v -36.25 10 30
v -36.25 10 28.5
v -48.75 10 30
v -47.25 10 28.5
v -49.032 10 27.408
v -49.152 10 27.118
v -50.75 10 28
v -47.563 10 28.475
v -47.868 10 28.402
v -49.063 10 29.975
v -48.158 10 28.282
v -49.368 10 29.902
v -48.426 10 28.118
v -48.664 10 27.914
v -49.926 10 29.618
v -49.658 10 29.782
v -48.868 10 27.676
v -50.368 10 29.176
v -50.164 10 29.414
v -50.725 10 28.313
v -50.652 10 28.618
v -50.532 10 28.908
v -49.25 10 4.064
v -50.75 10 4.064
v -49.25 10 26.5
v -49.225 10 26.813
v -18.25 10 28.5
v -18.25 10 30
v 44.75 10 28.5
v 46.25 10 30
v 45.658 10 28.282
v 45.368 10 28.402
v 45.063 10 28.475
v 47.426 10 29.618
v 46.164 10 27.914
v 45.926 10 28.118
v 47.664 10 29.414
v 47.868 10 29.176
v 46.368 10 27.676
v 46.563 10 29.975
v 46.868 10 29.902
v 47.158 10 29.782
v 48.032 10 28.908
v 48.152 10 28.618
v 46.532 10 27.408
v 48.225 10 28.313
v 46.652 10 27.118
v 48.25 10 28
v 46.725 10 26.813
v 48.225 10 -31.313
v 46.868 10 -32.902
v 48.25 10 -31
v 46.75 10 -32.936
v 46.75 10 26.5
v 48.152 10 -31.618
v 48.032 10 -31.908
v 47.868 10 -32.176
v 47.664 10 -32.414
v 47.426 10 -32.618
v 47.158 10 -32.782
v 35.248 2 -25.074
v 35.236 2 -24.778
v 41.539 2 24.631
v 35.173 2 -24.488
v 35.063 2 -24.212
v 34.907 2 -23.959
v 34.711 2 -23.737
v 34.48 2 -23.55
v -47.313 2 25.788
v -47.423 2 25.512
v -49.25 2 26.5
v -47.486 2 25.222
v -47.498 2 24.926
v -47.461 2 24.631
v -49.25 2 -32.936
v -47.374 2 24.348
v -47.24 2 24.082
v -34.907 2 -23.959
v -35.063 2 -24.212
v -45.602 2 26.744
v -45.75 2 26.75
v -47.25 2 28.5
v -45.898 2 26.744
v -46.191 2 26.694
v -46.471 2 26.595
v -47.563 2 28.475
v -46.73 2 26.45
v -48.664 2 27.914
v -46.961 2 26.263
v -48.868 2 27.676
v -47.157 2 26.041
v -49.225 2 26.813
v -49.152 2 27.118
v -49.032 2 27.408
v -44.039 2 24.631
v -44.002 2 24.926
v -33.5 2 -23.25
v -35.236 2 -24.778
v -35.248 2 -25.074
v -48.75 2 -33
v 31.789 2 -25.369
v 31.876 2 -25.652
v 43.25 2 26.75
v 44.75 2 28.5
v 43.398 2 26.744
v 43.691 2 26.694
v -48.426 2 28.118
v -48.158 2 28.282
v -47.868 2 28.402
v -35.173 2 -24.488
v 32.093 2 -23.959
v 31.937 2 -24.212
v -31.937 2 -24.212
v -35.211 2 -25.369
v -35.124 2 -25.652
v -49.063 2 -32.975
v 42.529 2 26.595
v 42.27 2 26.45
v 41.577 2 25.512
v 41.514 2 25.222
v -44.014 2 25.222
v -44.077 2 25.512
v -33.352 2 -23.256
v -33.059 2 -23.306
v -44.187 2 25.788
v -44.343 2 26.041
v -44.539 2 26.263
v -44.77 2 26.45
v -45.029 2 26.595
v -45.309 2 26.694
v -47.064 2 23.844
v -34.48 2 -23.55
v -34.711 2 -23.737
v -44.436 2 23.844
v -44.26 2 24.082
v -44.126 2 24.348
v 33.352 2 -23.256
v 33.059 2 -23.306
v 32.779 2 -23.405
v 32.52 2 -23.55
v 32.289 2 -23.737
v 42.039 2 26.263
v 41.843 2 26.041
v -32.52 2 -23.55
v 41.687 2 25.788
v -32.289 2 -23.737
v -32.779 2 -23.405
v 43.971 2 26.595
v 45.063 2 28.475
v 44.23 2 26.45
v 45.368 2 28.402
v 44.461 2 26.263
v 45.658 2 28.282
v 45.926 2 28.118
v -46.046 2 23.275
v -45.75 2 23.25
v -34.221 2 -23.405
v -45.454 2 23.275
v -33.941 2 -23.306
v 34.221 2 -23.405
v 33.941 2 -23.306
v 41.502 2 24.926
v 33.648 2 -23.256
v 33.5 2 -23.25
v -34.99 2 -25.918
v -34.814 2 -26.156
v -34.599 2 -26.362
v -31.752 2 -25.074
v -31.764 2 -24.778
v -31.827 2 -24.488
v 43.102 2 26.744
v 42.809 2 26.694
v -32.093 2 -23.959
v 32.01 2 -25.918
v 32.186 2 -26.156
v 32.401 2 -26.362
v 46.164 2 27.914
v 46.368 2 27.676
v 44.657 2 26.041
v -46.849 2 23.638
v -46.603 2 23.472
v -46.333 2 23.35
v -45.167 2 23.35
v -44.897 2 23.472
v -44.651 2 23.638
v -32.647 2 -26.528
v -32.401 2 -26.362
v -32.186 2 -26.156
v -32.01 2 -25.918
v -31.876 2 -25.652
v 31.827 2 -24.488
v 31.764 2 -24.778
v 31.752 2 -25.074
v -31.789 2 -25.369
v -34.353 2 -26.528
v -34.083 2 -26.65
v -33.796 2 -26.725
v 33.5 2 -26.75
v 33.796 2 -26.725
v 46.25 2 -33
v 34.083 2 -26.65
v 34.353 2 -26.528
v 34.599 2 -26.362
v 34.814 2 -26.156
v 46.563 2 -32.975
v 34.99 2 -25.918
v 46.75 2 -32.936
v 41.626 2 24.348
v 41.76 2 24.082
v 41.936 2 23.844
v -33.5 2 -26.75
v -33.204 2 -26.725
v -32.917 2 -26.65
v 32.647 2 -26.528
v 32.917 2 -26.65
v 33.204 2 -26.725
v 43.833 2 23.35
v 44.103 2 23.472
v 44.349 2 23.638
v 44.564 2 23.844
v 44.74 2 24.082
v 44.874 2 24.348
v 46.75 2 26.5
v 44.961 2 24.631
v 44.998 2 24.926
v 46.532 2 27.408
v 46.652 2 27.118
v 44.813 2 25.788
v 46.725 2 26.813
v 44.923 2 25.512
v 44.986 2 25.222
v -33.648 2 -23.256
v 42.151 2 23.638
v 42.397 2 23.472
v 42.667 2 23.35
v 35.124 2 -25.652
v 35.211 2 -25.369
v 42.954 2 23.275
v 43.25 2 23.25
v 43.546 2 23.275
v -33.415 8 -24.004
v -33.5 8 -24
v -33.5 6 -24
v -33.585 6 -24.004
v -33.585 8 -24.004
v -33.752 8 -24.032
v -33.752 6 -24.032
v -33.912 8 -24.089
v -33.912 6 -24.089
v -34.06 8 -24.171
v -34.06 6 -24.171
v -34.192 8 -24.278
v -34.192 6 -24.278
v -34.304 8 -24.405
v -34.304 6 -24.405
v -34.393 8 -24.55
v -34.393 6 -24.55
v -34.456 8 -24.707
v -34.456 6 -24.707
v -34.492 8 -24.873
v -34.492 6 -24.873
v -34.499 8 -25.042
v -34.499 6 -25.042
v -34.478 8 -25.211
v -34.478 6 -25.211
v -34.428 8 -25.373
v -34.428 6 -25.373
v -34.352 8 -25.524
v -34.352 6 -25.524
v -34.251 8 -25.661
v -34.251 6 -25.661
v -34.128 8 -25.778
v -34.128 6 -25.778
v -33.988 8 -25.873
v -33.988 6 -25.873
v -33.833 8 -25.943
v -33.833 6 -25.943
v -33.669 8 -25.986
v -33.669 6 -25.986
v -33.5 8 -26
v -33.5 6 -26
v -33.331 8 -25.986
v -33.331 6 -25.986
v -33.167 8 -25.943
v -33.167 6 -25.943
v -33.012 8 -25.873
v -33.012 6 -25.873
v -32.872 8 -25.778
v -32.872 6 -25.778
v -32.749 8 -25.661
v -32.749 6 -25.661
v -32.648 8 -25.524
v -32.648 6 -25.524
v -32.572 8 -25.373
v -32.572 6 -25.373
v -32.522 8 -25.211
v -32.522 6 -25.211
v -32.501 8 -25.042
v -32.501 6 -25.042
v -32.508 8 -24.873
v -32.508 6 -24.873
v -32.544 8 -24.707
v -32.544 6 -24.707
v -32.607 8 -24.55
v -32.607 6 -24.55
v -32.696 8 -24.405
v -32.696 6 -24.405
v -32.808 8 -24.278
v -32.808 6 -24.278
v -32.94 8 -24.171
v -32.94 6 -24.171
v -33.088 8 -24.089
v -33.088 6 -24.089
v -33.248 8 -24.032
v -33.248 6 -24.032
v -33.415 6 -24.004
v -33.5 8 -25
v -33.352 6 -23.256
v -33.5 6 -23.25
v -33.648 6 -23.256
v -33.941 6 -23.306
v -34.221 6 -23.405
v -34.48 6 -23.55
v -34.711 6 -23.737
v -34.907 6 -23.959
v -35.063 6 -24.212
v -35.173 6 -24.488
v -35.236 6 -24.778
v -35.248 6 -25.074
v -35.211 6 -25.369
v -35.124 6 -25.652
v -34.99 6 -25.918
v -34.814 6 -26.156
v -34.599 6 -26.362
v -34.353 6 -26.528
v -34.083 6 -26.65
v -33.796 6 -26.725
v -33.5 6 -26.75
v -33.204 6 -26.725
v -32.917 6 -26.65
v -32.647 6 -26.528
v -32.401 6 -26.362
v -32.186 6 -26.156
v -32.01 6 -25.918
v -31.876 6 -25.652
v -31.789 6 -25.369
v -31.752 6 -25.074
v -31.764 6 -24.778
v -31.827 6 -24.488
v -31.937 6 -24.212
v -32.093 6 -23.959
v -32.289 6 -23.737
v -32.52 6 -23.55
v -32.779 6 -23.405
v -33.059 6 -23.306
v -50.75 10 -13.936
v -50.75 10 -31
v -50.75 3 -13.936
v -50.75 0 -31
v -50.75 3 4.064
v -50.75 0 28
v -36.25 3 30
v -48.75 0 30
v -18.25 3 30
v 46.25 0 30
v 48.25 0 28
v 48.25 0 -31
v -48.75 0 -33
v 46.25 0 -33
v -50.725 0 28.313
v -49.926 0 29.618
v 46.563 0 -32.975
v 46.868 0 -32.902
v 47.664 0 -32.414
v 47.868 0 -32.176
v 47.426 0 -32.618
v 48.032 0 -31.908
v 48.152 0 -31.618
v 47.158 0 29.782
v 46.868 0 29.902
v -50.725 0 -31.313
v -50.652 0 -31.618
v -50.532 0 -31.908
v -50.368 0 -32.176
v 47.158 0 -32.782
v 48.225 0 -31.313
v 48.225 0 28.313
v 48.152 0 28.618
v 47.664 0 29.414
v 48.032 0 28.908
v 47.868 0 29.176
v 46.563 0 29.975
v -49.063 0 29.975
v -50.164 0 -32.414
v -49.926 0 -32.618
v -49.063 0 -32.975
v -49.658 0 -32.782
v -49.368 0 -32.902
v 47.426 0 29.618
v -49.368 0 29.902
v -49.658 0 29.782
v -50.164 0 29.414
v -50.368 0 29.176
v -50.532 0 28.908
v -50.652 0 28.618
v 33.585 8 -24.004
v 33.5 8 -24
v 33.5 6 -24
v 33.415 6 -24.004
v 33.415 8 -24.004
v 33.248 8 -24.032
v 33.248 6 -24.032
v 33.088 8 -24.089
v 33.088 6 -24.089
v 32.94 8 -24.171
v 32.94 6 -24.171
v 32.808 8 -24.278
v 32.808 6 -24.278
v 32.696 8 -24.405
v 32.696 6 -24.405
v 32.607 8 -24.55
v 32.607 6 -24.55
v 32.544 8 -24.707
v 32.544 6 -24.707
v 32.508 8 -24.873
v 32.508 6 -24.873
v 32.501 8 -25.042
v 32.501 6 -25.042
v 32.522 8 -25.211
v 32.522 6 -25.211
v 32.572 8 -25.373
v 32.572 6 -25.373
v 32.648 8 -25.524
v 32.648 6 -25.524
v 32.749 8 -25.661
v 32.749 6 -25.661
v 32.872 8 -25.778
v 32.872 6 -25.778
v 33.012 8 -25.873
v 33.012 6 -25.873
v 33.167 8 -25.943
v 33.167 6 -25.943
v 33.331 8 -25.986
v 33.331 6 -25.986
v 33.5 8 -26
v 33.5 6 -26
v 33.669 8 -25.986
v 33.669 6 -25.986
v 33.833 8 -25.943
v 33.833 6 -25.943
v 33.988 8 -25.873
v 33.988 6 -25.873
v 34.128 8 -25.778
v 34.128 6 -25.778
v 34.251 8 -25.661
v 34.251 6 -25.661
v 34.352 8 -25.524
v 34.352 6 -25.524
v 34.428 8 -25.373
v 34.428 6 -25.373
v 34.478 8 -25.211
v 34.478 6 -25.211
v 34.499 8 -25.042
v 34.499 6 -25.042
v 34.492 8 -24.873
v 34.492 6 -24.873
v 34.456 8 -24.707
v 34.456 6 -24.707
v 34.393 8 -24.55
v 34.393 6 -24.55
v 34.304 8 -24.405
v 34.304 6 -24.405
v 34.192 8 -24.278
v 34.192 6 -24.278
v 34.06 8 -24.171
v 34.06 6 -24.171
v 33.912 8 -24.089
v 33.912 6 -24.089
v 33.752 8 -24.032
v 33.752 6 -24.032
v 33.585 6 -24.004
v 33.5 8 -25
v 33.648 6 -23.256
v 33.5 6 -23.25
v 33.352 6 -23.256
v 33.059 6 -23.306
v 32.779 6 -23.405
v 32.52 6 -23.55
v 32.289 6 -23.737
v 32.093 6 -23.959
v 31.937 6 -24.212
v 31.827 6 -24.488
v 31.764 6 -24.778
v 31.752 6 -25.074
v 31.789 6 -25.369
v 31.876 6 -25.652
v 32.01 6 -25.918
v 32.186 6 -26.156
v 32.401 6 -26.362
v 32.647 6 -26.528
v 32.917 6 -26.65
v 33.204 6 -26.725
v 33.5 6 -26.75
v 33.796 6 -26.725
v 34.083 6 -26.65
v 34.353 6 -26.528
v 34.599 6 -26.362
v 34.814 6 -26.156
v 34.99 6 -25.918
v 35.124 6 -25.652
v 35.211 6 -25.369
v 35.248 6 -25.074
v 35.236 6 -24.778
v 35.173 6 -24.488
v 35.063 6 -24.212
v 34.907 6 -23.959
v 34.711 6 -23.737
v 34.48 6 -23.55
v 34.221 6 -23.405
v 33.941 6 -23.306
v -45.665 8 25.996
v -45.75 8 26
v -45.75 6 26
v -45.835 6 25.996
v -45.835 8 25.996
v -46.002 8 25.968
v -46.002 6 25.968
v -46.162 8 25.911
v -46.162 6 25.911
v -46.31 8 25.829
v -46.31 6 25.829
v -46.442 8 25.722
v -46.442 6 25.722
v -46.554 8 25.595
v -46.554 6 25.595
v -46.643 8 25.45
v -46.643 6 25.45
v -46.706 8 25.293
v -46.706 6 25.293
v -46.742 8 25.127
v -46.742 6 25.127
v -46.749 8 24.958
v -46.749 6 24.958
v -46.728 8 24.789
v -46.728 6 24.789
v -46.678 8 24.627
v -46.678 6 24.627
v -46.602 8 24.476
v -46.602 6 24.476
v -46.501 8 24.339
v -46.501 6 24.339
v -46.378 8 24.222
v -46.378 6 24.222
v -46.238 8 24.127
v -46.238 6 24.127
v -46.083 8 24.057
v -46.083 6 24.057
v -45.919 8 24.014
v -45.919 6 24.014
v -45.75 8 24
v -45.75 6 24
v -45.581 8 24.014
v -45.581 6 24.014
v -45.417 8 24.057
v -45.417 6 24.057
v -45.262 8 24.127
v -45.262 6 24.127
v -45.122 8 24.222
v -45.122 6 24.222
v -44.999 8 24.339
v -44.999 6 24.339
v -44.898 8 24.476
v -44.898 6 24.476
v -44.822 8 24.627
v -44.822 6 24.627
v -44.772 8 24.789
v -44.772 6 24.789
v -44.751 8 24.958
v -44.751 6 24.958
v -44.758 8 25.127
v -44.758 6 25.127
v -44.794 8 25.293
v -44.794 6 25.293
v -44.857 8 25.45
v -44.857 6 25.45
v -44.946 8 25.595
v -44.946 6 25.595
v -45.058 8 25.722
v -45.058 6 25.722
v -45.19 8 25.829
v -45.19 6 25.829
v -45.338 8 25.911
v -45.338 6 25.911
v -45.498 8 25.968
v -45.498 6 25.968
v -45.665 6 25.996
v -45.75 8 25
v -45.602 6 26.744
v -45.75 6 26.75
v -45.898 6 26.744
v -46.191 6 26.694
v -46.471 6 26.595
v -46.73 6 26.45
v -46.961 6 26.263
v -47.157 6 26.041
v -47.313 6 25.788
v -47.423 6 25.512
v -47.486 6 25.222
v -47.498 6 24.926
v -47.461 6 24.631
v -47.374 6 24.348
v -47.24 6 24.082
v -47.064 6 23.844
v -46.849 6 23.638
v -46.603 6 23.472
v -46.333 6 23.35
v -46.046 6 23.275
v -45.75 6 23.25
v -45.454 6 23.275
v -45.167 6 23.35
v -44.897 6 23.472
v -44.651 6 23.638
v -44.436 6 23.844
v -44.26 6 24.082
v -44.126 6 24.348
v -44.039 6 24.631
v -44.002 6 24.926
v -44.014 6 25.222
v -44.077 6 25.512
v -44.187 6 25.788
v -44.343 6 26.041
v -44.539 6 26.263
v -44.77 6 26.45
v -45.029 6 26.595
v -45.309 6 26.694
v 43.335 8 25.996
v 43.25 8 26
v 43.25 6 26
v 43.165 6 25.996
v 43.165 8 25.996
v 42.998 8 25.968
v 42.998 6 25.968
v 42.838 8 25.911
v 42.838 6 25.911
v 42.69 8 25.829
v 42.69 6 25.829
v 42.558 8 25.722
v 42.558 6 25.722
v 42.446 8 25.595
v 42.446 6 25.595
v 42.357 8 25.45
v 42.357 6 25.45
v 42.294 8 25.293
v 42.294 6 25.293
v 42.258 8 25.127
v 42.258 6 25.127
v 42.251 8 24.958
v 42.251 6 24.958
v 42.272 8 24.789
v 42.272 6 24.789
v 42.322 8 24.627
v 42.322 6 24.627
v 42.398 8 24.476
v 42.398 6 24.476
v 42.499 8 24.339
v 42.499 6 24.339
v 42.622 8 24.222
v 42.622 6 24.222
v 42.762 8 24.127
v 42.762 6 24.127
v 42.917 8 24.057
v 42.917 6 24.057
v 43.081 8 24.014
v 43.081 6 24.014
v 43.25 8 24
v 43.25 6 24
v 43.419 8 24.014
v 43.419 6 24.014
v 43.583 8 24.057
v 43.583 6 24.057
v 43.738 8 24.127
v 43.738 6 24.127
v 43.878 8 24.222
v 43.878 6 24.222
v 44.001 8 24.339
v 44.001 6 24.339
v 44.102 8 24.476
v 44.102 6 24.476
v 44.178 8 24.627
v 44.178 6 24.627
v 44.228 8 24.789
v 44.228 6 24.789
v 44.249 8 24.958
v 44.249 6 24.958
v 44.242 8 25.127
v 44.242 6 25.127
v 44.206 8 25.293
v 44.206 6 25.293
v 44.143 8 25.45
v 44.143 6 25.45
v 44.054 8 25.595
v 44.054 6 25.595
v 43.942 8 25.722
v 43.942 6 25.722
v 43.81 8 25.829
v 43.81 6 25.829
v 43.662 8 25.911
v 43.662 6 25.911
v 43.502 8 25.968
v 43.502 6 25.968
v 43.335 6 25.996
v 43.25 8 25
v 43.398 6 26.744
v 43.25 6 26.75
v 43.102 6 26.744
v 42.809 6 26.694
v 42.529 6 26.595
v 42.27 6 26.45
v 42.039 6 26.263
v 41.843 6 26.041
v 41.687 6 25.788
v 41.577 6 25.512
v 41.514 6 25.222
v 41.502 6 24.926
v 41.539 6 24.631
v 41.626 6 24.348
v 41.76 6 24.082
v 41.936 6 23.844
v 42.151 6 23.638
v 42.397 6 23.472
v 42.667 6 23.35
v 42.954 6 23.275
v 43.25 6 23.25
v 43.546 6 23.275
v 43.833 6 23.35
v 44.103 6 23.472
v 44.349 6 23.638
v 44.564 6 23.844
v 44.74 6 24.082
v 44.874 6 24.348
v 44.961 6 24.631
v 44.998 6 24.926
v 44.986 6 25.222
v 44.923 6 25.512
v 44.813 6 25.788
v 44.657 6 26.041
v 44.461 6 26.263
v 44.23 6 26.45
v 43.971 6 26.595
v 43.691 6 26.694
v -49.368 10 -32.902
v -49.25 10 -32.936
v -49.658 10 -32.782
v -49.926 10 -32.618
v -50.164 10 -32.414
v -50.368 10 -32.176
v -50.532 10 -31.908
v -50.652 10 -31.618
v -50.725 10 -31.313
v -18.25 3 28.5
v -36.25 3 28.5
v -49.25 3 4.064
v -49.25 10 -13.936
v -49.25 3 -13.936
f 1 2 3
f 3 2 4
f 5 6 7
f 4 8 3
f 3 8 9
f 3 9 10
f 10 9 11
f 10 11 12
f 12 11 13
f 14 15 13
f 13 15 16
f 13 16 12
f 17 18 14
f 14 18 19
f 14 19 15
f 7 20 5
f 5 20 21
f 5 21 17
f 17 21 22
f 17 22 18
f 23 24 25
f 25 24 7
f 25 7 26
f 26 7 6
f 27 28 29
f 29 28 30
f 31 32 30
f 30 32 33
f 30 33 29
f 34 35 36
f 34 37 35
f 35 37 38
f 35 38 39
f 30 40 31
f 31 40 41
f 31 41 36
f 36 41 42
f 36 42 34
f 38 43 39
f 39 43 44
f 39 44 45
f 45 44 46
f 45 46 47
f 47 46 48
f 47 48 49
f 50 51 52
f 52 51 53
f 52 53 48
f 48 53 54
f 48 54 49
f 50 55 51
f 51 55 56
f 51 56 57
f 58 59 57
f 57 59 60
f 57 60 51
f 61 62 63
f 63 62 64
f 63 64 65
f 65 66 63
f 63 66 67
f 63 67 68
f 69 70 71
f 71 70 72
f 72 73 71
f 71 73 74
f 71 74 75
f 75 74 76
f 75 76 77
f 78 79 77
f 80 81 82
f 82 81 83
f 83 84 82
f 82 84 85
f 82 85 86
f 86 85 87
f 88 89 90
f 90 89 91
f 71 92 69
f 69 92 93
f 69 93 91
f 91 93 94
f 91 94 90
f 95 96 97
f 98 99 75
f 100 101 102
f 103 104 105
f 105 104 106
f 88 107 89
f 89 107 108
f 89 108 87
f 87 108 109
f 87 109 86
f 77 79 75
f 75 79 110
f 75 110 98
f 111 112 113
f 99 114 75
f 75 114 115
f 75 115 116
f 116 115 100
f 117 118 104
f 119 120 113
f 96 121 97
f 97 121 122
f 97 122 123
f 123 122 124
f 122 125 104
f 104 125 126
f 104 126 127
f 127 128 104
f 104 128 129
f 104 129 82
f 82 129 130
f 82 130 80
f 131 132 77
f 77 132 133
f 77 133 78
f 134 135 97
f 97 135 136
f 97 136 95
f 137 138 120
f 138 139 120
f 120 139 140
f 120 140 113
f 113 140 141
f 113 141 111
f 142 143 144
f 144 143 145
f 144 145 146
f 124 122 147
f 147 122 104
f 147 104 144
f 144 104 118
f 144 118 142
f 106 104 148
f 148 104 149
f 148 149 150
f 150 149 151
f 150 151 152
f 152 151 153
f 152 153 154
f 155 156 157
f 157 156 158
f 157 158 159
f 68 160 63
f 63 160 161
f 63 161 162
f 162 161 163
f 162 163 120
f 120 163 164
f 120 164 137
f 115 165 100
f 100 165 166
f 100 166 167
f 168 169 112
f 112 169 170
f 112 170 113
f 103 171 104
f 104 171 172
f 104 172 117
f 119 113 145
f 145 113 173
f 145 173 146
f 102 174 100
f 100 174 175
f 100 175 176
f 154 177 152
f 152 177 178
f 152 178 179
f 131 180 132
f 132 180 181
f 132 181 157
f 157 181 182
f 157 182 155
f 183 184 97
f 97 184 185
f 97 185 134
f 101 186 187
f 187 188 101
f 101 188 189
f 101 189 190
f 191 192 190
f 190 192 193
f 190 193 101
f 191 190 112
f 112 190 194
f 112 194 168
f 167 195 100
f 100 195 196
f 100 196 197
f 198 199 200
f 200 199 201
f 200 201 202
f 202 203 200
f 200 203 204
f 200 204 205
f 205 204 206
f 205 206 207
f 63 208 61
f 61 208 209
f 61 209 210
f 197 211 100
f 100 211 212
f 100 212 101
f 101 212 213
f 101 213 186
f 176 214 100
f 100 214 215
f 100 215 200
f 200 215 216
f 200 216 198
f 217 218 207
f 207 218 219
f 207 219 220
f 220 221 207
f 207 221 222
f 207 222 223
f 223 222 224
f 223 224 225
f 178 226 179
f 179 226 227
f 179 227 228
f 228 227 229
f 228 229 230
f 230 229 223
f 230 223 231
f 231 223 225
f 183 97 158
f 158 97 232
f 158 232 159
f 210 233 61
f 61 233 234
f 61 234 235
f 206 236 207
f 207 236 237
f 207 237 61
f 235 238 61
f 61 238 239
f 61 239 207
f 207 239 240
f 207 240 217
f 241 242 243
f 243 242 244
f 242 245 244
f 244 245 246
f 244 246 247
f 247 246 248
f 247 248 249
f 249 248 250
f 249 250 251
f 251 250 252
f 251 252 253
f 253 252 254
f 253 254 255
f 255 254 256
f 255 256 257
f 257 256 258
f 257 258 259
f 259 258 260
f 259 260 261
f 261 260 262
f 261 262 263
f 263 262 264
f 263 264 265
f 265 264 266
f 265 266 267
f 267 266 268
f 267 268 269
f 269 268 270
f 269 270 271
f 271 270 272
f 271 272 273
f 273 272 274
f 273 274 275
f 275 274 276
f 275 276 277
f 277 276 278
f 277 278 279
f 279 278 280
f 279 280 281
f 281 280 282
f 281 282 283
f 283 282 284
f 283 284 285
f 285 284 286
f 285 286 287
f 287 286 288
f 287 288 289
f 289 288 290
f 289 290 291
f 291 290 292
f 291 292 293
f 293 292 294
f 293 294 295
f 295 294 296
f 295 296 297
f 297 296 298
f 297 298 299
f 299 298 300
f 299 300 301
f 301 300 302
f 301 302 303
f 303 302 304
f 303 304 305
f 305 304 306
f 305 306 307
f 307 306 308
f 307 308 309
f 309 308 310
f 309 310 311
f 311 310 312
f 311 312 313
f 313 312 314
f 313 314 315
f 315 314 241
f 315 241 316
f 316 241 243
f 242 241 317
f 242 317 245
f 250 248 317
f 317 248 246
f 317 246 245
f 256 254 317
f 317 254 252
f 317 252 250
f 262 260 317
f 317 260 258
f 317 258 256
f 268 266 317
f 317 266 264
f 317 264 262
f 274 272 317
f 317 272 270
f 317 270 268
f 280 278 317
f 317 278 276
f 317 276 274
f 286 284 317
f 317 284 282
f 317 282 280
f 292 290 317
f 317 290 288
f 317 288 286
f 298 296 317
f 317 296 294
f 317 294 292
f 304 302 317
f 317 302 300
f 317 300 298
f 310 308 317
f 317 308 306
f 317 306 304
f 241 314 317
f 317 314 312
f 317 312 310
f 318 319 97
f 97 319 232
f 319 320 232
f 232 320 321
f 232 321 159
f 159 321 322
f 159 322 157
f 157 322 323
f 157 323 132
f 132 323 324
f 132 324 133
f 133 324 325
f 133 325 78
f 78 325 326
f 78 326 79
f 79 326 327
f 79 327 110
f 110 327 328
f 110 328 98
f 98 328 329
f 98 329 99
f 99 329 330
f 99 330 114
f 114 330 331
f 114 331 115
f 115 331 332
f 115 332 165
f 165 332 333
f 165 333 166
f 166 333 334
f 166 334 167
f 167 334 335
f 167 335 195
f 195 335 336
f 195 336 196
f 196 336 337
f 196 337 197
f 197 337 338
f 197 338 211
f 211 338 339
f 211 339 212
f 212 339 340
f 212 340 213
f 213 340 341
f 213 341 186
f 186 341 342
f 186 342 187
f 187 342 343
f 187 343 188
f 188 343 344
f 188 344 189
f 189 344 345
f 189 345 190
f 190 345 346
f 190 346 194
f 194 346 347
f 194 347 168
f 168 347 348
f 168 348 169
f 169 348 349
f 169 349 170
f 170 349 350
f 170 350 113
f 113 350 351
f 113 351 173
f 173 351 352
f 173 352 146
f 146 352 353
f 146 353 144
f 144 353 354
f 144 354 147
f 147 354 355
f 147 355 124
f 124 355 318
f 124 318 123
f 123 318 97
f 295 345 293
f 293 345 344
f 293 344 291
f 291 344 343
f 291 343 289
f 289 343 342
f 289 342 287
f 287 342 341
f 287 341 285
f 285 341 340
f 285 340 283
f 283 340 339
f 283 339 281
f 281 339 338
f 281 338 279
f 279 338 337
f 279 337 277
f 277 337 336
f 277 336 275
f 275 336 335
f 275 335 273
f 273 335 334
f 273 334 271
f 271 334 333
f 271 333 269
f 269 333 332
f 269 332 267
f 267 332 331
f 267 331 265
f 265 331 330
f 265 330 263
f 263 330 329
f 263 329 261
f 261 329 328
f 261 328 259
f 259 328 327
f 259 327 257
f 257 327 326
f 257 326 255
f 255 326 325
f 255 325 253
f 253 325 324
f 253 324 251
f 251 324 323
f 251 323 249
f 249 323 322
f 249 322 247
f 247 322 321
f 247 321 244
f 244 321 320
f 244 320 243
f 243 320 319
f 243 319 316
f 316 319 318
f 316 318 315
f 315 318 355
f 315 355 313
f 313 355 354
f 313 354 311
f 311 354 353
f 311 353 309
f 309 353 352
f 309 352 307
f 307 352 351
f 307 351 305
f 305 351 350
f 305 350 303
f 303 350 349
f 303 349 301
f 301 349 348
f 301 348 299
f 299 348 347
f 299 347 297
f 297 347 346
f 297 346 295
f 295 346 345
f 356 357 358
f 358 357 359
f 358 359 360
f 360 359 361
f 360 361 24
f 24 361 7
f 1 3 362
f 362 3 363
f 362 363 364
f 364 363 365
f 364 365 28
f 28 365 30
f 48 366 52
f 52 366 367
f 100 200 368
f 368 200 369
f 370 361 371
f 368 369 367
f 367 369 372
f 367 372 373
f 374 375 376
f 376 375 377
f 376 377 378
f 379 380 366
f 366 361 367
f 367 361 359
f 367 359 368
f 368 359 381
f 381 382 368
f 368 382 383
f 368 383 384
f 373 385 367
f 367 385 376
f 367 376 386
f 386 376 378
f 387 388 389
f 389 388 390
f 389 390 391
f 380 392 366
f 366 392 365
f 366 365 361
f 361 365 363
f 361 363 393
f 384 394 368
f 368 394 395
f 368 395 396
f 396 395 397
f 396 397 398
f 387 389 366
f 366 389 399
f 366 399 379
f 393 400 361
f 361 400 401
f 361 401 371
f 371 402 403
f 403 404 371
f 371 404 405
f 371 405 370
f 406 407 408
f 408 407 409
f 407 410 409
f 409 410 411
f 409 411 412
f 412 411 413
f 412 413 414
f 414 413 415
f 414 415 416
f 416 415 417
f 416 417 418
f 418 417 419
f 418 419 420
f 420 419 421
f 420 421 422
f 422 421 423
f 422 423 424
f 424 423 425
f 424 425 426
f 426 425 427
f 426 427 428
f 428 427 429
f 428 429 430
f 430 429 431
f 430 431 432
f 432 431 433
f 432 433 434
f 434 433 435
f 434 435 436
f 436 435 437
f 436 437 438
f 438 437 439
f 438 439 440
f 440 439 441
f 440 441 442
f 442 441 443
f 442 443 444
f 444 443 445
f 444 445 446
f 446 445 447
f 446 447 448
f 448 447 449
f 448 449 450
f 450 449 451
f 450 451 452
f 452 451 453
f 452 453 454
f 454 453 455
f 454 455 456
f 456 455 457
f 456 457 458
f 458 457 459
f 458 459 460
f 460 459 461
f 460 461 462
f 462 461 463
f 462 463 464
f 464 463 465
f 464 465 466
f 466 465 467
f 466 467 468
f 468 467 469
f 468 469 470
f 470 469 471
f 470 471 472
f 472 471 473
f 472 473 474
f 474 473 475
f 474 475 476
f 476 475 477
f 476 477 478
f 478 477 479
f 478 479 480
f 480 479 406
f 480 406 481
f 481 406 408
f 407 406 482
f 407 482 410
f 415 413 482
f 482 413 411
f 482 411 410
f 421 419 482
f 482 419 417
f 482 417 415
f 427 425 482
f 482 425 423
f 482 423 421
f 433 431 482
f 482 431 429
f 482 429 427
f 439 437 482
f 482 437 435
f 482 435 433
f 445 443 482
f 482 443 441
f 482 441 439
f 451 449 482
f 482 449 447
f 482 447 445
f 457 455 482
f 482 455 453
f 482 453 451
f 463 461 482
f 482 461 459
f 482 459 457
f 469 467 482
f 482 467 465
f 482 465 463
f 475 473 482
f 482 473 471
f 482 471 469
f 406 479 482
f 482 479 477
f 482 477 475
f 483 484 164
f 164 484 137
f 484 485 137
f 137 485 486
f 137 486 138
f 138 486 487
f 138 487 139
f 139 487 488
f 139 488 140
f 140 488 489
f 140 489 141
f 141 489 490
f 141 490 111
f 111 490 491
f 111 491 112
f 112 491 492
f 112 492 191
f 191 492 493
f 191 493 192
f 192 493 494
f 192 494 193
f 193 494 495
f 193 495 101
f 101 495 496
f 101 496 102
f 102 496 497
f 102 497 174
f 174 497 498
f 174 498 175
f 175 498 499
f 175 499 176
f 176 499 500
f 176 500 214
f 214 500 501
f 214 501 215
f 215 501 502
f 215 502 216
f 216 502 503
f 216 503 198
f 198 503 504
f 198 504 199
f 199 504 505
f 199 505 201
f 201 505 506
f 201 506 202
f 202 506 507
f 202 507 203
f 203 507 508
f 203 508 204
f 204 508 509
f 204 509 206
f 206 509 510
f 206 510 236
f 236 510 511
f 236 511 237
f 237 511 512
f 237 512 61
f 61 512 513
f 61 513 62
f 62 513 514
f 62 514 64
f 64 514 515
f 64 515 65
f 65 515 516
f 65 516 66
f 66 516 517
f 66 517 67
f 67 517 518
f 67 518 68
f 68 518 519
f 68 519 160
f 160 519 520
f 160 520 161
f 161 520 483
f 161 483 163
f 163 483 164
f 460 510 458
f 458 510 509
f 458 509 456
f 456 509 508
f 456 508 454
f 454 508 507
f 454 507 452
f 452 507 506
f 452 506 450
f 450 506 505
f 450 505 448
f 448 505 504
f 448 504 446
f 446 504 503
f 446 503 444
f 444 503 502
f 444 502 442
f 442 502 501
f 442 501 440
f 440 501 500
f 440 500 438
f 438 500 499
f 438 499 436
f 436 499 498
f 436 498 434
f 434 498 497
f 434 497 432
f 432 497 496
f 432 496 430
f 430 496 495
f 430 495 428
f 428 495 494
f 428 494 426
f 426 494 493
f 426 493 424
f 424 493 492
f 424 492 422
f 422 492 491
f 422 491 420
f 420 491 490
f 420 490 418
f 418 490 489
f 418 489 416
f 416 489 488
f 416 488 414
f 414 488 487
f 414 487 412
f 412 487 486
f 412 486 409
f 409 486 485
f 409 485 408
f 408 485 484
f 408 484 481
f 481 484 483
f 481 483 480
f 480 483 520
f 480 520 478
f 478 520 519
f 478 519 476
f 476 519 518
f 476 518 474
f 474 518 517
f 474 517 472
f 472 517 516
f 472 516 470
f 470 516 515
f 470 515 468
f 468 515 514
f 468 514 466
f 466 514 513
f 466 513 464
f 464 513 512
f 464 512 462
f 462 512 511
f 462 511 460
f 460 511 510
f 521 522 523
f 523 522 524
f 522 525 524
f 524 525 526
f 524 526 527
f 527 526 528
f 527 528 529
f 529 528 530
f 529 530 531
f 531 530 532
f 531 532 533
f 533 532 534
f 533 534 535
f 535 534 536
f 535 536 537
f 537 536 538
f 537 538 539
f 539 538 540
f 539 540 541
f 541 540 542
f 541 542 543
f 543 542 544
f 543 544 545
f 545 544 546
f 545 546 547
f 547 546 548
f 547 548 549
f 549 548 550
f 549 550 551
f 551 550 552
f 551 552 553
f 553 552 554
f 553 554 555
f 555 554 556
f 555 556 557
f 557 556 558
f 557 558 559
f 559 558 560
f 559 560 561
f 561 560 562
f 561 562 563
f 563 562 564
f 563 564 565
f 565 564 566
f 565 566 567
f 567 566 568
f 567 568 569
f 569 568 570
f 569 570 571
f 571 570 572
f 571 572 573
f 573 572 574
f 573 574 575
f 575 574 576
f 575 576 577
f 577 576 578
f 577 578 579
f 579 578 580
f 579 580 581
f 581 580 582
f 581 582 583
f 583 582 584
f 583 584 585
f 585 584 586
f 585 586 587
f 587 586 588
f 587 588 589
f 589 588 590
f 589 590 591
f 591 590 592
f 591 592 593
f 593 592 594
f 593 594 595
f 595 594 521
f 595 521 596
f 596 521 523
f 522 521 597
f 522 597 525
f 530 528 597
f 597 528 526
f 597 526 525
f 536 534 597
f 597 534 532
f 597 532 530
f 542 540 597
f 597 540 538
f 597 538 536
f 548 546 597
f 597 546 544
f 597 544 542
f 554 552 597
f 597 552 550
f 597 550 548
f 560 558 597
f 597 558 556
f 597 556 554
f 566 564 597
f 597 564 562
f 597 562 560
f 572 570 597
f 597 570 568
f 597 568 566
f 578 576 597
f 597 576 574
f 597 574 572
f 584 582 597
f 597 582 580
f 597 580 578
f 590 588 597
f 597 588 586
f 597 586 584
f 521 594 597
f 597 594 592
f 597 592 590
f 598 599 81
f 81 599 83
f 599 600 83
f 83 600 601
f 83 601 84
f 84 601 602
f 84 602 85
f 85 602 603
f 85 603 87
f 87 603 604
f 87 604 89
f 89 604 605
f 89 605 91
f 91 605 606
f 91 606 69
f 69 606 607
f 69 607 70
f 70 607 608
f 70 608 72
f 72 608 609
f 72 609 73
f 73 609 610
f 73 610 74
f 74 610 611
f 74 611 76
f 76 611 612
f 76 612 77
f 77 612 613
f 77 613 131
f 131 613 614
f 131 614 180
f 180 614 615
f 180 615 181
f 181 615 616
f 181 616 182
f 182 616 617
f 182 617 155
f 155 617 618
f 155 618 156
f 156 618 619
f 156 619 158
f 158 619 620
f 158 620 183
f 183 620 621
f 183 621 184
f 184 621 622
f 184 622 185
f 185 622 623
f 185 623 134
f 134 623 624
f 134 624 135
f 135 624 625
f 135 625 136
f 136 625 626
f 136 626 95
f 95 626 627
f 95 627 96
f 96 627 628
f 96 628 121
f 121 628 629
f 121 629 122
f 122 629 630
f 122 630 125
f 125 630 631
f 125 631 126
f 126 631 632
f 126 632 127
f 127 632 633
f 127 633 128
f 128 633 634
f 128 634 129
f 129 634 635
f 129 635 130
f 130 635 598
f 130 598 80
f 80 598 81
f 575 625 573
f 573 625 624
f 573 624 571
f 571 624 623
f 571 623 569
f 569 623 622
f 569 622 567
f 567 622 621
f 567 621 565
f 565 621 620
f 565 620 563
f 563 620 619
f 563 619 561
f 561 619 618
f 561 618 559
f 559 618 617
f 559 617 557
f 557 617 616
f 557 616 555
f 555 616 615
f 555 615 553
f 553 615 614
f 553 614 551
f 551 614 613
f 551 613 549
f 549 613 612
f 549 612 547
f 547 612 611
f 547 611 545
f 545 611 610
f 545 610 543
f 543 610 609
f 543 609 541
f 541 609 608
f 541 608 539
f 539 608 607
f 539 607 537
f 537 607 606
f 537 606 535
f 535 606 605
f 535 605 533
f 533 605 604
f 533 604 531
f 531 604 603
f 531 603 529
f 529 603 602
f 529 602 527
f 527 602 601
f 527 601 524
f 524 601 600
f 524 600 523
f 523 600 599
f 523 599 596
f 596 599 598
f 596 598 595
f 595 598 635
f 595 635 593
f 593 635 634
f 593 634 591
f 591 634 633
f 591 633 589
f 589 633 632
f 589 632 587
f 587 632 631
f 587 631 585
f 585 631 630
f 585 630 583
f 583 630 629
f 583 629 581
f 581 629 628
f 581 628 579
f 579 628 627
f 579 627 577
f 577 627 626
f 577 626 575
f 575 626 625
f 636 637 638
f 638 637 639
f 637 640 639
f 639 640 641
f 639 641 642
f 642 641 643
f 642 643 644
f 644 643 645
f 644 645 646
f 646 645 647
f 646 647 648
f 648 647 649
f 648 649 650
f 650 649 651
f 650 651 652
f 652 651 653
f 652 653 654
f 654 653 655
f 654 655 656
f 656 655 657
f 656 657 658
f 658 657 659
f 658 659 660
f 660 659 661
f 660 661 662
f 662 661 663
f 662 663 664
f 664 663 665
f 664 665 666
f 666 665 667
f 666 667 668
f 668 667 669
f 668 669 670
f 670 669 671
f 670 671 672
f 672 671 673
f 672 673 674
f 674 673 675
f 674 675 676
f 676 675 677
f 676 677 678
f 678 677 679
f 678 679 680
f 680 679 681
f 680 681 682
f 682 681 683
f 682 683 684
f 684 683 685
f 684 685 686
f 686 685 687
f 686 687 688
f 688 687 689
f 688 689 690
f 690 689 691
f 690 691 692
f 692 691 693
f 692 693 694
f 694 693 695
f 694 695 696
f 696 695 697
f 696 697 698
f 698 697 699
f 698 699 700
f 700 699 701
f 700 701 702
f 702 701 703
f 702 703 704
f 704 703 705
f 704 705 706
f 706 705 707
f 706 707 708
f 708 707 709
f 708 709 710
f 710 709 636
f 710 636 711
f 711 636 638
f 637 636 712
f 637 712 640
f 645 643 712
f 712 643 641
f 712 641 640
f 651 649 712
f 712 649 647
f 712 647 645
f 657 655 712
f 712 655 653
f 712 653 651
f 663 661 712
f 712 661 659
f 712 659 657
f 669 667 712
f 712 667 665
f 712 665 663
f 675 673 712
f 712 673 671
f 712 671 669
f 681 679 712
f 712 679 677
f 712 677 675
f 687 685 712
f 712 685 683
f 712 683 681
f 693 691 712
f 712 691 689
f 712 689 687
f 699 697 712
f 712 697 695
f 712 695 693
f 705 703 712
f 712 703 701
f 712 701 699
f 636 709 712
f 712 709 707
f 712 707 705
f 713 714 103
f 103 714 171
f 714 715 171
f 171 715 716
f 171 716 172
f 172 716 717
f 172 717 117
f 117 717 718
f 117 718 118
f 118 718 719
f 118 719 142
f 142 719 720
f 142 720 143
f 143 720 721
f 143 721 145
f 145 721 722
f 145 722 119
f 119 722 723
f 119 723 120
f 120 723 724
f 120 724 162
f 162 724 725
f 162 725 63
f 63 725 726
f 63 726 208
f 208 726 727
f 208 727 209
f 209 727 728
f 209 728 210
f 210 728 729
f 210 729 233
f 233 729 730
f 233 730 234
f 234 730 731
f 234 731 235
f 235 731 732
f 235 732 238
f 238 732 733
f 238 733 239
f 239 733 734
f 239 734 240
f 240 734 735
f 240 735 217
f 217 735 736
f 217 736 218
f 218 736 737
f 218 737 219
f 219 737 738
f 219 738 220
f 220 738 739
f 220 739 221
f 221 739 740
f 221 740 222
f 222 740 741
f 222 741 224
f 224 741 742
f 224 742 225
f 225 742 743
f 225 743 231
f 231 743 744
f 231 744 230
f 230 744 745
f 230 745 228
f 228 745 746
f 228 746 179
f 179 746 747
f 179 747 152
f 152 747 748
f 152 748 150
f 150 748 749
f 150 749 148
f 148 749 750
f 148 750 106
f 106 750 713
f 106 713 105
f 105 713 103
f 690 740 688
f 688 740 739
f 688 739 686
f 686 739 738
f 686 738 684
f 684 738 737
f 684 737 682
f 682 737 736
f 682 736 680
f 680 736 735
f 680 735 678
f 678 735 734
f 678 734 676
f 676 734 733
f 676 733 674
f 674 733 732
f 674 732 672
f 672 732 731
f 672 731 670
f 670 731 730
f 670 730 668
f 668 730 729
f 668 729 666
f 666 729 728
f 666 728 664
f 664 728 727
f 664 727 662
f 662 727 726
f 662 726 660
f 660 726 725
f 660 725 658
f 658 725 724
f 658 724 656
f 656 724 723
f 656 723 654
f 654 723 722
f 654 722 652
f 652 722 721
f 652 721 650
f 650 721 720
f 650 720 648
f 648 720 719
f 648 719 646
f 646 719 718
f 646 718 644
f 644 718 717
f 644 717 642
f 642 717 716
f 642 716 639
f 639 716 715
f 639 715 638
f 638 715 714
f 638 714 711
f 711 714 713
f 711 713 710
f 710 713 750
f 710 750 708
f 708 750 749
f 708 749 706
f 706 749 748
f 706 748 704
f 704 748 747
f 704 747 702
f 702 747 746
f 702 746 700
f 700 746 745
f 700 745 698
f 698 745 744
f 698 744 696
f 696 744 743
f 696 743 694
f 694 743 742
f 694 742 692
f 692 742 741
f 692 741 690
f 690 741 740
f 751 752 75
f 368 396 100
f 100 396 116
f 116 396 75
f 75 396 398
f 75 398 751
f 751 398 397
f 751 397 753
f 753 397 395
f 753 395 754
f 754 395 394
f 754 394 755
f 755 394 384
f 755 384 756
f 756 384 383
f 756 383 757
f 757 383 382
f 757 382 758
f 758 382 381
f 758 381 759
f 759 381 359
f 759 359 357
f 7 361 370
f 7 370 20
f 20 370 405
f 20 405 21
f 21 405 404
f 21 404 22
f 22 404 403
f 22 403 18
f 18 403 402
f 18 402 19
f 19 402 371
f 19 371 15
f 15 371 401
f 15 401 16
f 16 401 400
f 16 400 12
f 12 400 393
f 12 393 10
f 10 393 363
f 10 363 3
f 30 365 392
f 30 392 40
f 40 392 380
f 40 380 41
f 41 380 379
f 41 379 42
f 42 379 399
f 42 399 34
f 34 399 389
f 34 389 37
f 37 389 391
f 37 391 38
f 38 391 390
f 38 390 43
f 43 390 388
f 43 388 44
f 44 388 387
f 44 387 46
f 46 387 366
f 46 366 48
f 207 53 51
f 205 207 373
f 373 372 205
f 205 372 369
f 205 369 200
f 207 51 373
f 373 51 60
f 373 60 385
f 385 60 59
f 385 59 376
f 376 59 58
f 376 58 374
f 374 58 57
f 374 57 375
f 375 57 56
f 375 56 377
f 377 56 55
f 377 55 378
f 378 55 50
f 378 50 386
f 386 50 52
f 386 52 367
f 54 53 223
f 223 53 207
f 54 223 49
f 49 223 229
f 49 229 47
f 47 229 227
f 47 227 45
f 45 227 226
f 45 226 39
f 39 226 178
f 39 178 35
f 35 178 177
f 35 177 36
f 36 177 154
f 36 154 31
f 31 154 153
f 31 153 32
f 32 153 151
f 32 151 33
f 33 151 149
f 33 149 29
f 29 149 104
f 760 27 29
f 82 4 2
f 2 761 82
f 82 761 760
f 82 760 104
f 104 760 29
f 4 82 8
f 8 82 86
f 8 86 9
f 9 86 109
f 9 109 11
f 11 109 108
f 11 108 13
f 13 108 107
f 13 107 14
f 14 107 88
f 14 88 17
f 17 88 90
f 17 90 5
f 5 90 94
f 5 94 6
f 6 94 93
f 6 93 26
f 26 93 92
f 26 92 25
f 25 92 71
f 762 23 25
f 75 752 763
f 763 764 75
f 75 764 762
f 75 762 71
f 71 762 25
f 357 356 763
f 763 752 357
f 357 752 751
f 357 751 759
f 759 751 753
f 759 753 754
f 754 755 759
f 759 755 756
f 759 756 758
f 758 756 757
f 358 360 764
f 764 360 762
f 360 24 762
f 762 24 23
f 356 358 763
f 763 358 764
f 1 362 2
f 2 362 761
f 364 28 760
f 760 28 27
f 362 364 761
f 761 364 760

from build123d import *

# Parameters (mm, degrees)
SKETCH1_R             = 1
BOSS_EXTRUDE1_DEPTH   = 8
BOSS_EXTRUDE1_2_DEPTH = 8
BOSS_EXTRUDE1_3_DEPTH = 8
BOSS_EXTRUDE1_4_DEPTH = 8
SKETCH2_R             = 1.75
BOSS_EXTRUDE2_DEPTH   = 6
SKETCH3_W             = 99
SKETCH3_H             = 63
BOSS_EXTRUDE3_DEPTH   = 2
FILLET1_R             = 2
BOSS_EXTRUDE4_START   = 8
BOSS_EXTRUDE4_DEPTH   = 8
CUT_EXTRUDE1_REACH    = 106.833
SKETCH6_W             = 18
SKETCH6_H             = 7
CUT_EXTRUDE2_REACH    = 83.514
SKETCH8_W             = 18
SKETCH8_H             = 7


with BuildPart() as part:
    # Sketch1 → Boss-Extrude1 (new body)
    with BuildSketch(Plane(origin=(0, 0, 0), x_dir=(1, 0, 0), z_dir=(0, 1, 0))):
        with Locations(Location((-33.5, 25, 0), (0, 0, 270))):
            Circle(SKETCH1_R)
    extrude(amount=BOSS_EXTRUDE1_DEPTH)



with BuildPart() as body_2:
    # Sketch1 → Boss-Extrude1 2 (new body)
    with BuildSketch(Plane(origin=(0, 0, 0), x_dir=(1, 0, 0), z_dir=(0, 1, 0))):
        with Locations(Location((33.5, 25, 0), (0, 0, 270))):
            Circle(SKETCH1_R)
    extrude(amount=BOSS_EXTRUDE1_2_DEPTH)


with BuildPart() as body_3:
    # Sketch1 → Boss-Extrude1 3 (new body)
    with BuildSketch(Plane(origin=(0, 0, 0), x_dir=(1, 0, 0), z_dir=(0, 1, 0))):
        with Locations(Location((-45.75, -25, 0), (0, 0, 270))):
            Circle(SKETCH1_R)
    extrude(amount=BOSS_EXTRUDE1_3_DEPTH)


with BuildPart() as body_4:
    # Sketch1 → Boss-Extrude1 4 (new body)
    with BuildSketch(Plane(origin=(0, 0, 0), x_dir=(1, 0, 0), z_dir=(0, 1, 0))):
        with Locations(Location((43.25, -25, 0), (0, 0, 270))):
            Circle(SKETCH1_R)
    extrude(amount=BOSS_EXTRUDE1_4_DEPTH)


with BuildPart() as part_1:
    add(part.part)

    add(body_2.part)  # Boss-Extrude2 merges body 2

    add(body_3.part)  # Boss-Extrude2 merges body 3

    add(body_4.part)  # Boss-Extrude2 merges body 4
    # Sketch2 → Boss-Extrude2 (add)
    with BuildSketch(Plane(origin=(0, 0, 0), x_dir=(1, 0, 0), z_dir=(0, 1, 0))):
        with Locations(Location((-33.5, 25, 0), (0, 0, 270))):
            Circle(SKETCH2_R)
        with Locations(Location((33.5, 25, 0), (0, 0, 270))):
            Circle(SKETCH2_R)
        with Locations(Location((43.25, -25, 0), (0, 0, 270))):
            Circle(SKETCH2_R)
        with Locations(Location((-45.75, -25, 0), (0, 0, 270))):
            Circle(SKETCH2_R)
    extrude(amount=BOSS_EXTRUDE2_DEPTH)

    # Sketch3 → Boss-Extrude3 (add)
    with BuildSketch(Plane(origin=(0, 0, 0), x_dir=(1, 0, 0), z_dir=(0, 1, 0))):
        with Locations((-1.25, 1.5)):
            Rectangle(SKETCH3_W, SKETCH3_H)
    extrude(amount=BOSS_EXTRUDE3_DEPTH)

    # Fillet1
    fillet1_edges = [part_1.edges().sort_by_distance(p)[0] for p in [
        (-50.75, 1, -33),
        (-50.75, 1, 30),
        (48.25, 1, 30),
        (48.25, 1, -33),
    ]]
    fillet(fillet1_edges, radius=FILLET1_R)

    # Sketch4 → Boss-Extrude4 (add)
    with BuildSketch(Plane(origin=(0, 2, 0), x_dir=(1, 0, 0), z_dir=(0, 1, 0)).offset(BOSS_EXTRUDE4_START)):
        with BuildLine():
            Line((-47.25, -28.5), (44.75, -28.5))
            ThreePointArc((44.75, -28.5), (46.164213562, -27.914213562), (46.75, -26.5))
            Line((46.75, -26.5), (46.75, 32.936491673))
            ThreePointArc((46.75, 32.936491673), (47.83113883, 32.224744871), (48.25, 31))
            Line((48.25, 31), (48.25, -28))
            ThreePointArc((48.25, -28), (47.664213562, -29.414213562), (46.25, -30))
            Line((46.25, -30), (-48.75, -30))
            ThreePointArc((-48.75, -30), (-50.164213562, -29.414213562), (-50.75, -28))
            Line((-50.75, -28), (-50.75, 31))
            ThreePointArc((-50.75, 31), (-50.33113883, 32.224744871), (-49.25, 32.936491673))
            Line((-49.25, 32.936491673), (-49.25, -26.5))
            ThreePointArc((-49.25, -26.5), (-48.664213562, -27.914213562), (-47.25, -28.5))
        make_face()
    extrude(amount=-BOSS_EXTRUDE4_DEPTH)

    # Sketch6 → Cut-Extrude1 (cut, up to next)
    with BuildSketch(Plane.ZY.offset(50.75), mode=Mode.PRIVATE) as cut_extrude1_sk1:
        with Locations((-4.936491673, 6.5)):
            Rectangle(SKETCH6_W, SKETCH6_H)
    cut_extrude1_tool1 = extrude(cut_extrude1_sk1.sketch, amount=-CUT_EXTRUDE1_REACH, mode=Mode.PRIVATE) & part_1.part
    add(cut_extrude1_tool1.solids().sort_by_distance((-50.75, 6.5, -4.936492))[0], mode=Mode.SUBTRACT)

    # Sketch8 → Cut-Extrude2 (cut, up to next)
    with BuildSketch(Plane.XY.offset(30), mode=Mode.PRIVATE) as cut_extrude2_sk1:
        with Locations((-27.25, 6.5)):
            Rectangle(SKETCH8_W, SKETCH8_H)
    cut_extrude2_tool1 = extrude(cut_extrude2_sk1.sketch, amount=-CUT_EXTRUDE2_REACH, mode=Mode.PRIVATE) & part_1.part
    add(cut_extrude2_tool1.solids().sort_by_distance((-27.25, 6.5, 30))[0], mode=Mode.SUBTRACT)


solid = part_1.part
